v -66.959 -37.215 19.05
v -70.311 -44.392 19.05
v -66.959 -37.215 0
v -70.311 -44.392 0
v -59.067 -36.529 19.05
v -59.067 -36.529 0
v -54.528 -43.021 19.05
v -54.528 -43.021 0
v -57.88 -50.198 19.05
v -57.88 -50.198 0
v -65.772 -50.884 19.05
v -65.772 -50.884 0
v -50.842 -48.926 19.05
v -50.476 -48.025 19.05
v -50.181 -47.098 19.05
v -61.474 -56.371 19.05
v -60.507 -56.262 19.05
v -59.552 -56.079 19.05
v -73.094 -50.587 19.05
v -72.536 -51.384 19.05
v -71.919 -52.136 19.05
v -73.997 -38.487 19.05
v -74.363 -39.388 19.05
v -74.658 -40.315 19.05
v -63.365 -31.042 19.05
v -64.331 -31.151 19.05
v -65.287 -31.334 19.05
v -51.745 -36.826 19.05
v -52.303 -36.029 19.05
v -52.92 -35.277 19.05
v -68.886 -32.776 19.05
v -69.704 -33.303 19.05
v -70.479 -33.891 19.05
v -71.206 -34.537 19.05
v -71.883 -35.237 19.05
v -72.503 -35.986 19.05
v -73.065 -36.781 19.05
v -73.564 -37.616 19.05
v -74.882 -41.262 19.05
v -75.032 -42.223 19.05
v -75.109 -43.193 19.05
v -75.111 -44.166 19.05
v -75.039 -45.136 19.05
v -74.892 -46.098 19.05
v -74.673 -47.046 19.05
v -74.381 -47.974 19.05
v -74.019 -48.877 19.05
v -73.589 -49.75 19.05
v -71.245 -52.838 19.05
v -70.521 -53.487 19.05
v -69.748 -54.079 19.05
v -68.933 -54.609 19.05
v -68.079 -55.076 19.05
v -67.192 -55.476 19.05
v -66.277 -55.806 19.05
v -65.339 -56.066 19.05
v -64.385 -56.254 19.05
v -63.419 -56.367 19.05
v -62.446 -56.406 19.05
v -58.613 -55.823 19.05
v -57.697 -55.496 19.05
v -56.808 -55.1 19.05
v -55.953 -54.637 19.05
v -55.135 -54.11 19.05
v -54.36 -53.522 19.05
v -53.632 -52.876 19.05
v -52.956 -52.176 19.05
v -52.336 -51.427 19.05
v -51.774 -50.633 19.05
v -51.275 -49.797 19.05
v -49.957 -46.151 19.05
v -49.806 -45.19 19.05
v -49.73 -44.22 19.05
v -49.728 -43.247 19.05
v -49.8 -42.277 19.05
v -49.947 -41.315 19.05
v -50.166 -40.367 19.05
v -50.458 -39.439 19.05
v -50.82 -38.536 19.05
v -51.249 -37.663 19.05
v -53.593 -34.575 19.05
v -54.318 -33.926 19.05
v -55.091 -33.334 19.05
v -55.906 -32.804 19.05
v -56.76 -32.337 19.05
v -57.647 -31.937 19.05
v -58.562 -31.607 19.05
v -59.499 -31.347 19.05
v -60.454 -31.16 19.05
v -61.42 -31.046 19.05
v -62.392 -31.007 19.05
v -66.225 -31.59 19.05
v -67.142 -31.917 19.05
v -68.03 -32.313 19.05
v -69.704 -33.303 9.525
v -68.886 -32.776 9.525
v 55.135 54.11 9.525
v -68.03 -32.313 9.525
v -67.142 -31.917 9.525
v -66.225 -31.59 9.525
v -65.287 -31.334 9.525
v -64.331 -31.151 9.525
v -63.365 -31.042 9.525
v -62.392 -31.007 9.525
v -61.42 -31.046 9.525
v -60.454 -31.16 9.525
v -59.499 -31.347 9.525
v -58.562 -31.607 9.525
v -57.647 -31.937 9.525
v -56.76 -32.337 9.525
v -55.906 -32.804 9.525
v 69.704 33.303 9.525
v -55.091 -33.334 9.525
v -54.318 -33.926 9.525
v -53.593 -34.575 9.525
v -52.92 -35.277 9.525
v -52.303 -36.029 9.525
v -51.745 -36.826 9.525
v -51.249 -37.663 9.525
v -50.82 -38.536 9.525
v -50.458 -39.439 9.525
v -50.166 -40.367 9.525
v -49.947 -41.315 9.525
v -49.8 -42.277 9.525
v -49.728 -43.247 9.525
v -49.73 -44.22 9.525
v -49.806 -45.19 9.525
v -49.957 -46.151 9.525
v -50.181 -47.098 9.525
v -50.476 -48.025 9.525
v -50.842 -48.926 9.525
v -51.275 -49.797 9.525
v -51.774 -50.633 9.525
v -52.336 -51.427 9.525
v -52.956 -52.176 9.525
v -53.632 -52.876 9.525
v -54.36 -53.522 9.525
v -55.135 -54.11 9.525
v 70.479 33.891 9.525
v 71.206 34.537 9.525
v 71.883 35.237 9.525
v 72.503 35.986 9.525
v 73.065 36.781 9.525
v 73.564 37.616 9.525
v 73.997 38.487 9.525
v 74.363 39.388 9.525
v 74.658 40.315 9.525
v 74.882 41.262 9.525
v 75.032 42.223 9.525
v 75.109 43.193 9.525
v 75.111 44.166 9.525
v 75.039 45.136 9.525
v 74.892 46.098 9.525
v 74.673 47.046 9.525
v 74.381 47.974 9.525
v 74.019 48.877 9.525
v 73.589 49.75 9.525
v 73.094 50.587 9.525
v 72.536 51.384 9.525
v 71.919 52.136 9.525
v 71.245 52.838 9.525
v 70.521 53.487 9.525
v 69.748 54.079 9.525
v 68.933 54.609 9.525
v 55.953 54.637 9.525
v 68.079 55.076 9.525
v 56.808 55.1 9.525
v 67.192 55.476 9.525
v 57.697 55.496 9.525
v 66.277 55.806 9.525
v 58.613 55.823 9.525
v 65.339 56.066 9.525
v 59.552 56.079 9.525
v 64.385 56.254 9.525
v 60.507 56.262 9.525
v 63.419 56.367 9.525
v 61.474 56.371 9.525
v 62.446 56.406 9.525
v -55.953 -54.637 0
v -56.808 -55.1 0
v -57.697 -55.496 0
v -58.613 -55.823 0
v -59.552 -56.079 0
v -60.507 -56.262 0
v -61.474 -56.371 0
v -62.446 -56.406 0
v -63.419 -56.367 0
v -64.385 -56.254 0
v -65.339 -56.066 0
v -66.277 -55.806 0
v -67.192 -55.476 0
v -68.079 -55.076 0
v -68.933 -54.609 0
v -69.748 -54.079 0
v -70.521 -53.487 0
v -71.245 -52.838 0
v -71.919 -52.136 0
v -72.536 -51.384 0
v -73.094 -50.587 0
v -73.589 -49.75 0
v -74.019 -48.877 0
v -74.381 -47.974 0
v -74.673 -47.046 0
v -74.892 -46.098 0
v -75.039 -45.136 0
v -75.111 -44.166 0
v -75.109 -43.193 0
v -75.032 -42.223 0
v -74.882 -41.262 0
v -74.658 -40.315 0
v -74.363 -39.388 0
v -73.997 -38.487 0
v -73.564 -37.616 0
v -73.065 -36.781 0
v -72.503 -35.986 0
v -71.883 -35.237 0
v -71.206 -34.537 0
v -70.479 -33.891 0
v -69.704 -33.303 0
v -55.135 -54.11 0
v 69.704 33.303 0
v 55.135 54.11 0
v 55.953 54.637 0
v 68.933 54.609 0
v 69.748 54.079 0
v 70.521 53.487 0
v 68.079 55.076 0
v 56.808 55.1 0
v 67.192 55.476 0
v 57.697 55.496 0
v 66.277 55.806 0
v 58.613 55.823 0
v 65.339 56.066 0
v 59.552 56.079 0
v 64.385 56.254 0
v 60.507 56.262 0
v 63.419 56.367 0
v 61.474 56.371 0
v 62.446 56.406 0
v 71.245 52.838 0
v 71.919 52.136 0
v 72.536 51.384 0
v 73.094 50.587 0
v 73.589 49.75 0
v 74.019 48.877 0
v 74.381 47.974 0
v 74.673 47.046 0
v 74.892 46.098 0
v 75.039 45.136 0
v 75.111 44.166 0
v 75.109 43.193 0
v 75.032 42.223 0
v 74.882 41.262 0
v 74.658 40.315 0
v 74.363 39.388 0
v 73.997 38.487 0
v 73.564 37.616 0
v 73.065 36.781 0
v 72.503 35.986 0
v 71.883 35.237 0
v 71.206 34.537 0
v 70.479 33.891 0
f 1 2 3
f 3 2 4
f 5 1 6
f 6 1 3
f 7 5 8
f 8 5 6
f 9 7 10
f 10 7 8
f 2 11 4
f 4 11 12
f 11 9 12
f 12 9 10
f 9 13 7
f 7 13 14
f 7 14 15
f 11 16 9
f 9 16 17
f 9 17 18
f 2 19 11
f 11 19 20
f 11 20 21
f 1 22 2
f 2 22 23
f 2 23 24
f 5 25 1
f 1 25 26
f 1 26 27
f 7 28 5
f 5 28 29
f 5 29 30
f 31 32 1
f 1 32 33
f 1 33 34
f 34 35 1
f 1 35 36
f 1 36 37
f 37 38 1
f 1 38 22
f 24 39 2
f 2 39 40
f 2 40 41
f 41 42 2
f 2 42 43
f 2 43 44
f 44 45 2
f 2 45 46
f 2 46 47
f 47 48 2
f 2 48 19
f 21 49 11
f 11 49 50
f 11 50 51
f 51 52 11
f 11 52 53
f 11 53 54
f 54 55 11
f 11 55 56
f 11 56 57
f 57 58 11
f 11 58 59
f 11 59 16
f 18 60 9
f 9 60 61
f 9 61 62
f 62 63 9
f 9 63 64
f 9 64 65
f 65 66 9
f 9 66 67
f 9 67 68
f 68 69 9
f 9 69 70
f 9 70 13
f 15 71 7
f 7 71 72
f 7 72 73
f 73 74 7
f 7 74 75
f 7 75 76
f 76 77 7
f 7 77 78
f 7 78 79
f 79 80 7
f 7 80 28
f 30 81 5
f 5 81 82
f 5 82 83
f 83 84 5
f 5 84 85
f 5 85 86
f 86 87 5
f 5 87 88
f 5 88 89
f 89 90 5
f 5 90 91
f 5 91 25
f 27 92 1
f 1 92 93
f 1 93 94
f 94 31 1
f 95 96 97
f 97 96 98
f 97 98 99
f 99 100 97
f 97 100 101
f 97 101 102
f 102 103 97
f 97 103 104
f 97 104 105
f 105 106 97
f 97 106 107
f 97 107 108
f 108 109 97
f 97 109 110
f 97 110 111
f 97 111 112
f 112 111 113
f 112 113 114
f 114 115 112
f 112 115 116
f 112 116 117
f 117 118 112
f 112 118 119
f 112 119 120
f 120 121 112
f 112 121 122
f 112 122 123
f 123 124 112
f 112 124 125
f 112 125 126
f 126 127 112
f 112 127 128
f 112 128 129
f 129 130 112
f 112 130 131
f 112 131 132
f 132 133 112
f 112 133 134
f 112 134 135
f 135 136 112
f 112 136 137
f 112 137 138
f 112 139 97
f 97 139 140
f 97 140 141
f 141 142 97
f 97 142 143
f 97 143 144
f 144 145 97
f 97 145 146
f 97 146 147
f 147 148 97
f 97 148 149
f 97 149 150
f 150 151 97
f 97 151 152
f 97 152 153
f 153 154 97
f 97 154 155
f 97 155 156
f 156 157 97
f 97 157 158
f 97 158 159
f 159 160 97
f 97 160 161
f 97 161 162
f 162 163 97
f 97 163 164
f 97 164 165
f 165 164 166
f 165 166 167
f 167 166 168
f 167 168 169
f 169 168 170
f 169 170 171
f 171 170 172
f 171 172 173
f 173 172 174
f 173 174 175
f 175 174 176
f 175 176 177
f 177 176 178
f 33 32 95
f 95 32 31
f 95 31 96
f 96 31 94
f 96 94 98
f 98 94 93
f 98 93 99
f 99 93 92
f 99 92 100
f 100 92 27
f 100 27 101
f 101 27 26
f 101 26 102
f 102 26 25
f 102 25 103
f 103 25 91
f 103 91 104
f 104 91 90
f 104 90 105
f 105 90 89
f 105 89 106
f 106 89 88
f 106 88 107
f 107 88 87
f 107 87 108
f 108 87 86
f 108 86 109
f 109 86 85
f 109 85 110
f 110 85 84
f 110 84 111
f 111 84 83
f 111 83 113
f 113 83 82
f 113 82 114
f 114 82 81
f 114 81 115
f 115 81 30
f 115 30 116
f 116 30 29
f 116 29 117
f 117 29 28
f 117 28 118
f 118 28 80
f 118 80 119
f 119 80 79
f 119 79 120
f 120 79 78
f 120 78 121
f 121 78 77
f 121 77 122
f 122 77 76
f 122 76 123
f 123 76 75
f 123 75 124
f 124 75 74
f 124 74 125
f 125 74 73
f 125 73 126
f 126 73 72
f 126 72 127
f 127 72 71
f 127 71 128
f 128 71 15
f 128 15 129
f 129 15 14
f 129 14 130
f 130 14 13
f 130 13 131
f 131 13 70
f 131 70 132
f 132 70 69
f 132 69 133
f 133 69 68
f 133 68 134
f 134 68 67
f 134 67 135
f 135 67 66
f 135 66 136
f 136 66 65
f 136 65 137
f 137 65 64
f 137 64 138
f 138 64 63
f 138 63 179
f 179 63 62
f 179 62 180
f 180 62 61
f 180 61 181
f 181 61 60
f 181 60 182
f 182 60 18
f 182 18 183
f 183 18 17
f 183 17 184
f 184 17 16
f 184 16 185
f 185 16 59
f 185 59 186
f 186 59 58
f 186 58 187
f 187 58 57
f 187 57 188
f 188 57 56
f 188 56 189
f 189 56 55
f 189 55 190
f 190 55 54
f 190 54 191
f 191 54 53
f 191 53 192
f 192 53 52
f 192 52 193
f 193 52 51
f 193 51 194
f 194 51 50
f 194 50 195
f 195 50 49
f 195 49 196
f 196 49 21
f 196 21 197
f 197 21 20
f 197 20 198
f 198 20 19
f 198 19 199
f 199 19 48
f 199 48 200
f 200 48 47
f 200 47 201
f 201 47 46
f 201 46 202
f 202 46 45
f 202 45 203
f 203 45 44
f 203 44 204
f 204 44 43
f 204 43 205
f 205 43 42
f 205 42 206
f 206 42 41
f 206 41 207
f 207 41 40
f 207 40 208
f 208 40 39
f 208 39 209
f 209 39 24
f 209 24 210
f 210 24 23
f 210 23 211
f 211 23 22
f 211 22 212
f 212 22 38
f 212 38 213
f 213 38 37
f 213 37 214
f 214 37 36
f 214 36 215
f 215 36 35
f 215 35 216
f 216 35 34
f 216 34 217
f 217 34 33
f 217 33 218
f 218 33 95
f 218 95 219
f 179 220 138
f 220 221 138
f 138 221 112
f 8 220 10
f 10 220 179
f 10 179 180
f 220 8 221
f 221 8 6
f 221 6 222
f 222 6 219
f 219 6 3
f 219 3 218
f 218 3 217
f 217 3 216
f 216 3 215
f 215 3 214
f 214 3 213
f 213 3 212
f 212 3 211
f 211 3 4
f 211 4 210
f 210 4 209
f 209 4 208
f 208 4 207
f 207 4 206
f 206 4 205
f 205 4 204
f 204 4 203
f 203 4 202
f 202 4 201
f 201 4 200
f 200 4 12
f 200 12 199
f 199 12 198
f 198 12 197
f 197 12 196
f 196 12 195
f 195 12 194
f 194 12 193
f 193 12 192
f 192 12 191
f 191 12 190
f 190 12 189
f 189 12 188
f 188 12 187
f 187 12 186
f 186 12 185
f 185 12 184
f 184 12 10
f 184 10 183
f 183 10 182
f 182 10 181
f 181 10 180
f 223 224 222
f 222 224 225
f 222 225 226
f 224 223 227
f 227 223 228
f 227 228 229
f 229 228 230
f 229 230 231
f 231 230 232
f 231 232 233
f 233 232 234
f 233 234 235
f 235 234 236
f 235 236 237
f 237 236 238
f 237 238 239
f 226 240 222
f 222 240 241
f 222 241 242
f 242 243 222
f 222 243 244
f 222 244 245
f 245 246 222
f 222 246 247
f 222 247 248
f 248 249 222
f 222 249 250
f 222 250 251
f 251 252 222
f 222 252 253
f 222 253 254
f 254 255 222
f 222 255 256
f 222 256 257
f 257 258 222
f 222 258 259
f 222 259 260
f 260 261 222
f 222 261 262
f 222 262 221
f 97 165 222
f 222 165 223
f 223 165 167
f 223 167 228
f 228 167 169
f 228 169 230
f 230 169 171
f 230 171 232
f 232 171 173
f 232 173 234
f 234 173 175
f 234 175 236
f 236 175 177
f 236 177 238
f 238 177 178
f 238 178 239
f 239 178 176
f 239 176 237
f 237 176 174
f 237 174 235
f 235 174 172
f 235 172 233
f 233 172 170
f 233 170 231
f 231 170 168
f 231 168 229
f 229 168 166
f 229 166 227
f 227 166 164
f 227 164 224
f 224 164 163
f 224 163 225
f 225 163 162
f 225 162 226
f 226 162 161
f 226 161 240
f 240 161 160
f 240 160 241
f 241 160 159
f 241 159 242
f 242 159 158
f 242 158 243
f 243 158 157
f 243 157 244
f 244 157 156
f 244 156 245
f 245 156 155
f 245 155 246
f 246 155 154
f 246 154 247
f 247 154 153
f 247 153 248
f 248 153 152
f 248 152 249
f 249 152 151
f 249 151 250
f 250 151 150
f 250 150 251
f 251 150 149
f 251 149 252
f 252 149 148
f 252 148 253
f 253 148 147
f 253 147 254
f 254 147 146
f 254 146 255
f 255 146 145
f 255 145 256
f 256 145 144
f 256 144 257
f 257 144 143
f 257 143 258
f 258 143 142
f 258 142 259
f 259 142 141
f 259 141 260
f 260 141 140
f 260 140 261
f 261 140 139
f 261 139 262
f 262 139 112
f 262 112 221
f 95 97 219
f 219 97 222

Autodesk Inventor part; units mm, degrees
ref_plane "YZ Plane" through (0, 0, 0) normal (1, 0, 0) x (0, 1, 0)
ref_plane "XZ Plane" through (0, 0, 0) normal (0, 1, 0) x (-1, 0, 0)
ref_plane "XY Plane" through (0, 0, 0) normal (0, 0, 1) x (1, 0, 0)
sketch "Sketch1" plane through (0, 0, 0) normal (0, 0, 1) x (1, 0, 0)
  line L0 (-65.5382, -61.3942) -> (80.107, 40.5877)
  line L1 (80.107, 40.5877) -> (65.5382, 61.3942)
  line L2 (65.5382, 61.3942) -> (-80.107, -40.5877)
  line L3 (-80.107, -40.5877) -> (-65.5382, -61.3942)
  line L4 (-65.5382, -61.3942) -> (65.5382, 61.3942) construction
  line L5 (80.107, 40.5877) -> (-80.107, -40.5877) construction
  line L6 (-65.5382, -61.3942) -> (112.2618, -61.3942) construction
  point P0 (0, 0)
  dimension "d0" = 177.8
  dimension "d1" = 35
  dimension "d2" = 25.4
extrude "Extrusion1" add sketch "Sketch1" along normal blind 9.525
sketch "Sketch2" plane through (0, 0, 9.525) normal (0, 0, 1) x (1, 0, 0)
  point P0 (0, 0)
fillet "Fillet1" radius 12.7 4 edges at (65.5382, 61.3942, 4.7625) (80.107, 40.5877, 4.7625) (-65.5382, -61.3942, 4.7625) (-80.107, -40.5877, 4.7625)
sketch "Sketch3" plane through (0, 0, 9.525) normal (0, 0, 1) x (1, 0, 0)
  arc A0 (-69.7038, -33.3033) -> (-55.135, -54.1098) centre (-62.4194, -43.7065) ccw construction
  line L0 (-54.5275, -43.0212) -> (-57.88, -50.1984)
  line L1 (-57.88, -50.1984) -> (-65.7718, -50.8837)
  line L2 (-65.7718, -50.8837) -> (-70.3112, -44.3918)
  line L3 (-70.3112, -44.3918) -> (-66.9588, -37.2146)
  line L4 (-66.9588, -37.2146) -> (-59.0669, -36.5293)
  line L5 (-59.0669, -36.5293) -> (-54.5275, -43.0212)
  point P0 (0, 0)
sketch "Sketch4" plane through (0, 0, 9.525) normal (0, 0, 1) x (1, 0, 0)
  arc A0 (-69.7038, -33.3033) -> (-55.135, -54.1098) centre (-62.4194, -43.7065) ccw projected
  line L0 (55.135, 54.1098) -> (-69.7038, -33.3033) projected
  circle A1 centre (-62.4194, -43.7065) radius 12.7
  point P0 (0, 0)
  point P1 (-55.135, -54.1098)
extrude "Extrusion2" add sketch "Sketch4" along normal blind 9.525
extrude "Extrusion3" cut sketch "Sketch3" against normal mid plane 25.4
